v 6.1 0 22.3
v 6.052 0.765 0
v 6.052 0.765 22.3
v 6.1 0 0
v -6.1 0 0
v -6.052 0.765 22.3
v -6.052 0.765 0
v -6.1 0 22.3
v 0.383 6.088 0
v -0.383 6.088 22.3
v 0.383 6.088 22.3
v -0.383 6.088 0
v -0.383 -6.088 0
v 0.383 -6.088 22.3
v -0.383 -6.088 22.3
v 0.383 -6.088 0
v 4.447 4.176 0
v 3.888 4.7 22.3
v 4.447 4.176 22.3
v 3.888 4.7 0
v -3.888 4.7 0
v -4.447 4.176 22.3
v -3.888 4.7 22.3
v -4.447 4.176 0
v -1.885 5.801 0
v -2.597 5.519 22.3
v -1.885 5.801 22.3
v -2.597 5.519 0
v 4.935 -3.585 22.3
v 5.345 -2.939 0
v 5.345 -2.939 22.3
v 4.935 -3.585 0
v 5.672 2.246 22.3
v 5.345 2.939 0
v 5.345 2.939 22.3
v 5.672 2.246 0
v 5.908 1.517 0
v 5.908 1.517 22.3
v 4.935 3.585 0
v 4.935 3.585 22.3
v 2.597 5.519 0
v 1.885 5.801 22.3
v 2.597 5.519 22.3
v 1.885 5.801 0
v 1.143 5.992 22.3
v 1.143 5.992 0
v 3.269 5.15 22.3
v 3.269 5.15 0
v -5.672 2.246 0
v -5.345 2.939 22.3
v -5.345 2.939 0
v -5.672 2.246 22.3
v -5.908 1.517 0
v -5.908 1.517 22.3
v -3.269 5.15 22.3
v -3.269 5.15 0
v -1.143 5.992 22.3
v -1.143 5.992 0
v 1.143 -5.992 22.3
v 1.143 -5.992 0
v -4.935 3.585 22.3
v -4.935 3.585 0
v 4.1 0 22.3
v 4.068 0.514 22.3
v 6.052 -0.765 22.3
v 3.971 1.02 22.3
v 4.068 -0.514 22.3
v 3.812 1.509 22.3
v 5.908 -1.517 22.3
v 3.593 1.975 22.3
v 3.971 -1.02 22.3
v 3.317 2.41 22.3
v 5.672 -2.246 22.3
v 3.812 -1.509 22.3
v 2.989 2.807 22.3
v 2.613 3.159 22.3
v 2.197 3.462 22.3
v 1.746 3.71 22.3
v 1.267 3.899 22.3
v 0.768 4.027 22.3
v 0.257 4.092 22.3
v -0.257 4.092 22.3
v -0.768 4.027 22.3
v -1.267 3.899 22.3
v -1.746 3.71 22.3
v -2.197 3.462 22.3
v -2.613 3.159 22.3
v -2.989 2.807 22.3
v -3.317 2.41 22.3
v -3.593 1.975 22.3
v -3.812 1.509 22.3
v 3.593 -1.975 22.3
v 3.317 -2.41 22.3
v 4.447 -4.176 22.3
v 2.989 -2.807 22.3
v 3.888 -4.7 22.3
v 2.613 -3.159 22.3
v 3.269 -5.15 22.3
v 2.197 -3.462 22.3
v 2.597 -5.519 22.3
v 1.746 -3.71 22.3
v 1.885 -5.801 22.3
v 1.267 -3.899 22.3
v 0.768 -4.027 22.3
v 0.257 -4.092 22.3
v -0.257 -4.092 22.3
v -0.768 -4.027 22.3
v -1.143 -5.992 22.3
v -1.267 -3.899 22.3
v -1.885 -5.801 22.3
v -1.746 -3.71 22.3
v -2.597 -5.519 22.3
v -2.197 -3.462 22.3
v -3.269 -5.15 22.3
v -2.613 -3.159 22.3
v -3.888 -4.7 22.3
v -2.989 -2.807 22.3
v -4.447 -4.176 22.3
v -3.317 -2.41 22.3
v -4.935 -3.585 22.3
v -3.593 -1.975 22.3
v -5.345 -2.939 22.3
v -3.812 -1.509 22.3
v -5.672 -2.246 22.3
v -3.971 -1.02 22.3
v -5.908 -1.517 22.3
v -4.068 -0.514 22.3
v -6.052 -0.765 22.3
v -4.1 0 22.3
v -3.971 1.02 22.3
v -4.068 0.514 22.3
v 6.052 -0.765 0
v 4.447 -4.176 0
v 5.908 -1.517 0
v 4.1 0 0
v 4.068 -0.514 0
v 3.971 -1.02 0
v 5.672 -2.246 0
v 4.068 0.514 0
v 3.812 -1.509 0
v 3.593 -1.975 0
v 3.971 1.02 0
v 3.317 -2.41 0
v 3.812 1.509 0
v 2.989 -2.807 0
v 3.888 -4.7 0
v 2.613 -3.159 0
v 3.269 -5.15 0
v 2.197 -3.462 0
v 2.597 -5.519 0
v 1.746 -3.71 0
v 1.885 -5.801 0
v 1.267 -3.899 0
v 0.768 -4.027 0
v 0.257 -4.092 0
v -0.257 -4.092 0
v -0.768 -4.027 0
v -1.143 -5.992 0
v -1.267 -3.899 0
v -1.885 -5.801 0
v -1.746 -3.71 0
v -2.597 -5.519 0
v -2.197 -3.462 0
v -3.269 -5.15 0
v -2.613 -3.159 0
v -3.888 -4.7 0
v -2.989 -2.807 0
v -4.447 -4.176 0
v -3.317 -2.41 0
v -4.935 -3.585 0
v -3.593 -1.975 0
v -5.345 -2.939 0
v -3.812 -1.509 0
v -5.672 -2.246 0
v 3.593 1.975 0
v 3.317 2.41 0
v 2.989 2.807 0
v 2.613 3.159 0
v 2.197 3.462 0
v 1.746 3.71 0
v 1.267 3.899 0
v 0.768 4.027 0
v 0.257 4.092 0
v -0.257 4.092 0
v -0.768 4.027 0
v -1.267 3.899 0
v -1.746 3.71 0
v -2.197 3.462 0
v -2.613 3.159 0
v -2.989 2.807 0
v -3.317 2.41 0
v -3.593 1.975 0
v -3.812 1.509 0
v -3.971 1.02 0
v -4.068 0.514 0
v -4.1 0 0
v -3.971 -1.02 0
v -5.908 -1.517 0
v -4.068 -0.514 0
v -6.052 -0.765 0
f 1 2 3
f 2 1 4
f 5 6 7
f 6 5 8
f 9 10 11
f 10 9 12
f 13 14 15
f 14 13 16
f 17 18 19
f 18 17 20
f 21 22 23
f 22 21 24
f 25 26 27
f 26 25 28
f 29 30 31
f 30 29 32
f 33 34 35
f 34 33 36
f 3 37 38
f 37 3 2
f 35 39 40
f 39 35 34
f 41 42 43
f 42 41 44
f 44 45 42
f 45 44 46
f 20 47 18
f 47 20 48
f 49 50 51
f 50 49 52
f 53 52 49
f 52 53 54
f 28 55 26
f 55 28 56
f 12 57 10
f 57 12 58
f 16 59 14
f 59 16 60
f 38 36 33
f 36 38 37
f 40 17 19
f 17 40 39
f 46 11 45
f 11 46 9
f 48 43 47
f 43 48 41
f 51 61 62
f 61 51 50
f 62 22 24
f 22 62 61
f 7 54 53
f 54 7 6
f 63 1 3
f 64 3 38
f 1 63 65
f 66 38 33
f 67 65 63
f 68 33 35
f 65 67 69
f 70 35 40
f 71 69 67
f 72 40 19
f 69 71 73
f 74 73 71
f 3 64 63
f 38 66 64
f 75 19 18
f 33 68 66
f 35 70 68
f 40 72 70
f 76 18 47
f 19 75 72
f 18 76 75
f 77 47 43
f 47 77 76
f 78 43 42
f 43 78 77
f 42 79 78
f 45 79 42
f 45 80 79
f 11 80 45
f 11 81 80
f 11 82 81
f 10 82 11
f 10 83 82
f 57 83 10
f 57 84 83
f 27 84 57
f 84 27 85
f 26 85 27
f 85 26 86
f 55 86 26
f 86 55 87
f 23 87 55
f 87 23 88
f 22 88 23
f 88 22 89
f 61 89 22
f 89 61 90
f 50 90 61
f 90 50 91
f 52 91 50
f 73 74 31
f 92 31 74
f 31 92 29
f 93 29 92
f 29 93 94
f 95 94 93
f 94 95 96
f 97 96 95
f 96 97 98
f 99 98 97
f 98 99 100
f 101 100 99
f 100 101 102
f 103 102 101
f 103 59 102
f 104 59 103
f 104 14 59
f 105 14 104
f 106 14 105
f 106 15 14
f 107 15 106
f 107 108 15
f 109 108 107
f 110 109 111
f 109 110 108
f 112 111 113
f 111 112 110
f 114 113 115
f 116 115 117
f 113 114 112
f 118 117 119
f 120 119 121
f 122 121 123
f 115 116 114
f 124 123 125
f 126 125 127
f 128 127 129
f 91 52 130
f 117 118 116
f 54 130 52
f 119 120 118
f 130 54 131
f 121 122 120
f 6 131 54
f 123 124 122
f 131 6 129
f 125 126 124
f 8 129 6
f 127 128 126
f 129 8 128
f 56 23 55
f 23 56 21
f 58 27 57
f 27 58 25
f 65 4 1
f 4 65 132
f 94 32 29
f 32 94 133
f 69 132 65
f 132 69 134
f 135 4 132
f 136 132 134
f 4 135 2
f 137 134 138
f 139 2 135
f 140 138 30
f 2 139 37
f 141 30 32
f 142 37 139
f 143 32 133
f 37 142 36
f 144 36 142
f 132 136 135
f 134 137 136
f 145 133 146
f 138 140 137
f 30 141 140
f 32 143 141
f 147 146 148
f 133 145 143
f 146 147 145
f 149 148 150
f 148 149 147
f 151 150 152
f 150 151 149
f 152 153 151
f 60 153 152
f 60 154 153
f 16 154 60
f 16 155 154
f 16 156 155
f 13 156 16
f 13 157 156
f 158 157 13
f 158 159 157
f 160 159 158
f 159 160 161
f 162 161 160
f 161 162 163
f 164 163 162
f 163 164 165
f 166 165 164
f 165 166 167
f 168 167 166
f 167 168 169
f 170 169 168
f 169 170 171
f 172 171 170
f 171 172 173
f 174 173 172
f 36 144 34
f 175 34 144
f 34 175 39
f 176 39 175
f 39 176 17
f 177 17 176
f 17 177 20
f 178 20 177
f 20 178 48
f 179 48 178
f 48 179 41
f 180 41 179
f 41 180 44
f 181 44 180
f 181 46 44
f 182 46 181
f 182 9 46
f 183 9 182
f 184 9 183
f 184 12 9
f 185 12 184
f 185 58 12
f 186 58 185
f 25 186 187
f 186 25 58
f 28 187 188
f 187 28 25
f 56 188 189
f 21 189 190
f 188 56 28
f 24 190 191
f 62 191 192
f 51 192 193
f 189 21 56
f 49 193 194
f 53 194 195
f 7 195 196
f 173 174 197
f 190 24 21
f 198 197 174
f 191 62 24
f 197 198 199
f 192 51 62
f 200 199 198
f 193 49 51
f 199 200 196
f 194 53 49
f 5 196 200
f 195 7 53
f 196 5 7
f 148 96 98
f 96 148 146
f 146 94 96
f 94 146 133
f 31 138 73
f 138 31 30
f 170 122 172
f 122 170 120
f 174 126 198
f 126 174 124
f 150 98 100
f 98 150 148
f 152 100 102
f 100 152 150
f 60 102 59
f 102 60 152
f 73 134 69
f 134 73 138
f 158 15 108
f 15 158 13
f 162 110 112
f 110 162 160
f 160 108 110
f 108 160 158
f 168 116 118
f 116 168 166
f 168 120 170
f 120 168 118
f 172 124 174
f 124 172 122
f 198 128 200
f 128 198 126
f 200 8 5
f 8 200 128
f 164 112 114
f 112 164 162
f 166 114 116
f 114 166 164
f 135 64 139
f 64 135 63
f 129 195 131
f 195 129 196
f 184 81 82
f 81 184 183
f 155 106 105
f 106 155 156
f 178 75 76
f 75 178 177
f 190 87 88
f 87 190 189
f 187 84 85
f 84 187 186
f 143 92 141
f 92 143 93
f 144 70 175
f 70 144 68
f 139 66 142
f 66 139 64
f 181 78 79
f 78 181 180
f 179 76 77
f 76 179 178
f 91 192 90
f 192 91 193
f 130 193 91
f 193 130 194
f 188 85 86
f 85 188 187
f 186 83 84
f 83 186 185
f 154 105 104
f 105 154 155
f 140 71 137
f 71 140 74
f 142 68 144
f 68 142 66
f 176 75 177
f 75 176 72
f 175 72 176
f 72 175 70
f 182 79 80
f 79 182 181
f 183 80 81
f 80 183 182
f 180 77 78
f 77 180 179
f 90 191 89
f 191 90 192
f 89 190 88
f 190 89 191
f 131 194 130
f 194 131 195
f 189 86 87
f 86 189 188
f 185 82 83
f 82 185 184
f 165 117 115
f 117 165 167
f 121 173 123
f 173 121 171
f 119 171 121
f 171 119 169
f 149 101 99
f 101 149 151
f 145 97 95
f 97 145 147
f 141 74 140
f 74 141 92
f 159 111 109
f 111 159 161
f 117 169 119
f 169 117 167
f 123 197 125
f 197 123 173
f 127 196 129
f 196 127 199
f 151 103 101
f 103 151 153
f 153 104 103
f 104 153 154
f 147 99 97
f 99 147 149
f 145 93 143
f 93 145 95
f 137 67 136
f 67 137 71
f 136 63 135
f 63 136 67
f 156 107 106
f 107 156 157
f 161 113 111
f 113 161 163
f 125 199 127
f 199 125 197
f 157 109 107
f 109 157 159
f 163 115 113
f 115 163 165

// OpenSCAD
// file: ../src/888_5010.scad
include <../parameters.scad>

module 888_5010() {
    difference() {
        cylinder(d=8+0.2+4, h=ALU_profile_width+ALU_profile_holder_wall_thickness*2-608_bearing_thickness*2, $fn=50);
        
        translate([0, 0, -ALU_profile_holder_wall_thickness])
        cylinder(d=8+0.2, h=ALU_profile_width+ALU_profile_holder_wall_thickness*4, $fn=50);
    }
}

888_5010();
// file: ../parameters.scad
maximum_printable_size = 150;

layer_thickness = 0.3;
global_clearance = 0.5;


//Screw diameter and nut for M10 [mm]
M10_screw_diameter = 10.4;
M10_head_height = 10;
M10_head_diameter = 16+0.5;
M10_nut_height = 10.5;
M10_nut_diameter = 25.5;
M10_nut_pocket = 22.3;

//Screw diameter for M8 [mm]
M8_screw_diameter = 8.6;
M8_head_height = 8;
M8_head_diameter = 13.5;
M8_nut_height = 7.5;
M8_square_nut_thin_height = 4.5;
M8_nut_diameter = 14.4 + 0.5;
M8_nut_pocket = 13 + 0.5;
M8_washer_diameter = 16;
M8_washer_thickness = 1.5;


//Screw diameter and nut for M6 [mm]
M6_screw_diameter=6.5;
M6_head_diameter = 10+0.5;
M6_head_height = 6;
M6_nut_height = 4.9;
M6_nut_diameter = 11.8;
M6_nut_pocket = 10.4;
M6_square_nut_height = 3;
M6_square_nut_diameter = 10;
M6_washer_thickness = 1.6;

//Screw diameter and nut for M5 [mm]
M5_screw_diameter=5.5;
M5_head_height = 5;
M5_head_diameter = 13+0.5;
M5_nut_height = 4.5;
M5_nut_diameter = 9.4;
M5_nut_pocket = 8.4;

//Screw diameter and nut for M4 [mm]
M4_screw_diameter=4.5;
M4_screw_head_height = 4;
M4_nut_height = 3.2;
M4_nut_diameter = 8.4;
M4_nut_pocket = 7.5;

//Screw diameter and nut for M3 [mm]
M3_screw_diameter = 3.2;
M3_nut_height = 2.7;
M3_nut_diameter = 6.6;
M3_nut_pocket = 5.6;
M3_screw_head_height = 3;

//Screw diameter and nut for M2,5 [mm]
M2_5_screw_diameter = 2.7;
M2_5_nut_height = 2.3;
M2_5_nut_diameter = 6;
M2_5_nut_pocket = 5.5;

// kulove lozisko

bearing_efsm_08_h = 33+1;
bearing_efsm_08_m = 22;
bearing_efsm_08_db = 18;
bearing_efsm_08_ag = 10.5;
bearing_efsm_08_n = M4_screw_diameter;
bearing_efsm_08_a1 = 5.5;
bearing_efsm_08_d = 8.25;
bearing_efsm_08_B = 8; // ball height

bearing_efsm_10_h = 38+1;
bearing_efsm_10_m = 26;
bearing_efsm_10_db = 21.9;
bearing_efsm_10_ag = 12+0.2;
bearing_efsm_10_n = M5_screw_diameter;
bearing_efsm_10_a1 = 6.5;
bearing_efsm_10_d = 10.25;


bearing_efsm_12_width = 40+1;
bearing_efsm_12_h = bearing_efsm_12_width;
bearing_efsm_12_boltd = 28/2; // polovina vzdalenosti mezi srouby
bearing_efsm_12_m = bearing_efsm_12_boltd*2;
bearing_efsm_12_db = 25;
bearing_efsm_12_ag = 13;
bearing_efsm_12_a1 = 7;
bearing_efsm_12_n = M5_screw_diameter;
bearing_efsm_12_d = 12.15;
bearing_efsm_12_B = 10; // ball height
bearing_efsm_space = 1;

bearing_efsm_17_width = 54+1;
bearing_efsm_17_h = bearing_efsm_17_width;
bearing_efsm_17_boltd = 38/2; // polovina vzdalenosti mezi srouby
bearing_efsm_17_m = bearing_efsm_17_boltd*2;
bearing_efsm_17_db = 35;
bearing_efsm_17_ag = 18;
bearing_efsm_17_n = M6_screw_diameter;
bearing_efsm_17_a1 = 10;
bearing_efsm_17_B = 17; // ball height

//limcove lozisko
bearing_EFOM_10_L=26; //celkova sirka zakladny
bearing_EFOM_10_d1=10.3;//diametr otvoru real=10 mm
bearing_EFOM_10_dB=22;//diametr vystupku pro ulozeni lozika
bearing_EFOM_10_H=52;//celková delka zakladny
bearing_EFOM_10_J=36;// hole pitch
bearing_EFOM_10_A1=6.5;//vyska pouzdra
bearing_EFOM_10_Ag=12;//celkova vyska
bearing_EFOM_10_N1=5;//sirka otvoru pro sroub
bearing_EFOM_10_N2=8;//delka otvoru pro sroub
bearing_EFOM_10_m=36;//roztec der pro sroub
bearing_EFOM_10_h=9;//vyska lozika


608_bearing_outer_diameter = 22.3;
608_bearing_inner_diameter = 16;
608_bearing_thickness = 7.1;


// 20 KG servo parameters

servo_20kg_axis_offset = 9.375; // jak je osa mimo stredu
servo_20kg_body_x = 42;
servo_20kg_body_y = 21;
servo_20kg_body_z = 40;
servo_20kg_thread_x = 49/2;
servo_20kg_thread_y = 10/2;
servo_20kg_body_below = 10; // jak hluboko je tělo serva pod drzaky na srouby
servo_20kg_below = 25.8; // jak hluboko je páka serva pod drzaky na srouby

servo_20kg_bolt_d = 2.5+0.3;
servo_20kg_nut_d = 5+0.3;


//strain gauge
strain_gauge_width = 12.7;
strain_gauge_length = 75.1;
strain_gauge_screw_distance = 10;

//ALU profile
ALU_profile_width = 30.5;
ALU_profile_holder_wall_thickness = 3;
ALU_profile_groove_width = 8;

//pillow block bearing
//https://www.igus.eu/product/372
//Part no. KSTM-08
KSTM08_screws_distance = 33;         //m
KSTM08_screws_holes_diameter = 4.5;  //d2
KSTM08_flange_thickness = 6;         //h3
KSTM08_case_width = 9;               //C1
KSTM08_case_length = 47;             //a
KSTM08_ball_width = 12;              //B
KSTM08_ball_hole_diameter = 7.85;    //d1


//ložiska pro malý rotor
bearing_outer_diameter = 10.2;    // Rozměr B1 v nákresu s přídavkem na toleranci otvoru
bearing_thickness = 4;        // Rozměr B2 v nákresu
//bearing_shaft_length = 19.5;    // Rozměr B3 v nákresu, Originalni hodnota 19.5
bearing_shaft_length = 20;    // Rozměr B3 v nákresu


//parametry víčka s telemetrickou anténou
S01_sila_materialu=1.2;
S01_vyska_horni_zavit=10;
S01_hloubka_zavitu=4;
S01_prumer_vnitrni=50;
LO_spodni_prumer=17.2;
LO_vyska_bez_krytu=15;
S01_tolerance_zavit=1.5;
R01_vyska_prekryti_statoru=10;

g3_0_cone1 = 70;
g3_0_srcew_dist = 55;



// scale parameters
base_length = 500;
mid_base_width = 500;
mid_base_height = 200;
mid_base_length = 500;
mid_base_x_offset = 50;
base_mid_base_hinge_offset = 50;
tower_height = 185;
tower_angle = atan((mid_base_width/2-ALU_profile_width-10)/tower_height);
tower_arm_length = tower_height/cos(tower_angle);
tower_drag_z_offset = 22;
electro_box_length = 225;
electro_box_width = 165;
electro_box_height = 51.5;

// calibration device parameters
calibration_arm_x_offset = 140;
calibration_arm_y_offset = 50;
// main file
//@set_slicing_config(../slicing/default.ini)

include <../parameters.scad>
use <../src/888_5010.scad>

888_5010();
